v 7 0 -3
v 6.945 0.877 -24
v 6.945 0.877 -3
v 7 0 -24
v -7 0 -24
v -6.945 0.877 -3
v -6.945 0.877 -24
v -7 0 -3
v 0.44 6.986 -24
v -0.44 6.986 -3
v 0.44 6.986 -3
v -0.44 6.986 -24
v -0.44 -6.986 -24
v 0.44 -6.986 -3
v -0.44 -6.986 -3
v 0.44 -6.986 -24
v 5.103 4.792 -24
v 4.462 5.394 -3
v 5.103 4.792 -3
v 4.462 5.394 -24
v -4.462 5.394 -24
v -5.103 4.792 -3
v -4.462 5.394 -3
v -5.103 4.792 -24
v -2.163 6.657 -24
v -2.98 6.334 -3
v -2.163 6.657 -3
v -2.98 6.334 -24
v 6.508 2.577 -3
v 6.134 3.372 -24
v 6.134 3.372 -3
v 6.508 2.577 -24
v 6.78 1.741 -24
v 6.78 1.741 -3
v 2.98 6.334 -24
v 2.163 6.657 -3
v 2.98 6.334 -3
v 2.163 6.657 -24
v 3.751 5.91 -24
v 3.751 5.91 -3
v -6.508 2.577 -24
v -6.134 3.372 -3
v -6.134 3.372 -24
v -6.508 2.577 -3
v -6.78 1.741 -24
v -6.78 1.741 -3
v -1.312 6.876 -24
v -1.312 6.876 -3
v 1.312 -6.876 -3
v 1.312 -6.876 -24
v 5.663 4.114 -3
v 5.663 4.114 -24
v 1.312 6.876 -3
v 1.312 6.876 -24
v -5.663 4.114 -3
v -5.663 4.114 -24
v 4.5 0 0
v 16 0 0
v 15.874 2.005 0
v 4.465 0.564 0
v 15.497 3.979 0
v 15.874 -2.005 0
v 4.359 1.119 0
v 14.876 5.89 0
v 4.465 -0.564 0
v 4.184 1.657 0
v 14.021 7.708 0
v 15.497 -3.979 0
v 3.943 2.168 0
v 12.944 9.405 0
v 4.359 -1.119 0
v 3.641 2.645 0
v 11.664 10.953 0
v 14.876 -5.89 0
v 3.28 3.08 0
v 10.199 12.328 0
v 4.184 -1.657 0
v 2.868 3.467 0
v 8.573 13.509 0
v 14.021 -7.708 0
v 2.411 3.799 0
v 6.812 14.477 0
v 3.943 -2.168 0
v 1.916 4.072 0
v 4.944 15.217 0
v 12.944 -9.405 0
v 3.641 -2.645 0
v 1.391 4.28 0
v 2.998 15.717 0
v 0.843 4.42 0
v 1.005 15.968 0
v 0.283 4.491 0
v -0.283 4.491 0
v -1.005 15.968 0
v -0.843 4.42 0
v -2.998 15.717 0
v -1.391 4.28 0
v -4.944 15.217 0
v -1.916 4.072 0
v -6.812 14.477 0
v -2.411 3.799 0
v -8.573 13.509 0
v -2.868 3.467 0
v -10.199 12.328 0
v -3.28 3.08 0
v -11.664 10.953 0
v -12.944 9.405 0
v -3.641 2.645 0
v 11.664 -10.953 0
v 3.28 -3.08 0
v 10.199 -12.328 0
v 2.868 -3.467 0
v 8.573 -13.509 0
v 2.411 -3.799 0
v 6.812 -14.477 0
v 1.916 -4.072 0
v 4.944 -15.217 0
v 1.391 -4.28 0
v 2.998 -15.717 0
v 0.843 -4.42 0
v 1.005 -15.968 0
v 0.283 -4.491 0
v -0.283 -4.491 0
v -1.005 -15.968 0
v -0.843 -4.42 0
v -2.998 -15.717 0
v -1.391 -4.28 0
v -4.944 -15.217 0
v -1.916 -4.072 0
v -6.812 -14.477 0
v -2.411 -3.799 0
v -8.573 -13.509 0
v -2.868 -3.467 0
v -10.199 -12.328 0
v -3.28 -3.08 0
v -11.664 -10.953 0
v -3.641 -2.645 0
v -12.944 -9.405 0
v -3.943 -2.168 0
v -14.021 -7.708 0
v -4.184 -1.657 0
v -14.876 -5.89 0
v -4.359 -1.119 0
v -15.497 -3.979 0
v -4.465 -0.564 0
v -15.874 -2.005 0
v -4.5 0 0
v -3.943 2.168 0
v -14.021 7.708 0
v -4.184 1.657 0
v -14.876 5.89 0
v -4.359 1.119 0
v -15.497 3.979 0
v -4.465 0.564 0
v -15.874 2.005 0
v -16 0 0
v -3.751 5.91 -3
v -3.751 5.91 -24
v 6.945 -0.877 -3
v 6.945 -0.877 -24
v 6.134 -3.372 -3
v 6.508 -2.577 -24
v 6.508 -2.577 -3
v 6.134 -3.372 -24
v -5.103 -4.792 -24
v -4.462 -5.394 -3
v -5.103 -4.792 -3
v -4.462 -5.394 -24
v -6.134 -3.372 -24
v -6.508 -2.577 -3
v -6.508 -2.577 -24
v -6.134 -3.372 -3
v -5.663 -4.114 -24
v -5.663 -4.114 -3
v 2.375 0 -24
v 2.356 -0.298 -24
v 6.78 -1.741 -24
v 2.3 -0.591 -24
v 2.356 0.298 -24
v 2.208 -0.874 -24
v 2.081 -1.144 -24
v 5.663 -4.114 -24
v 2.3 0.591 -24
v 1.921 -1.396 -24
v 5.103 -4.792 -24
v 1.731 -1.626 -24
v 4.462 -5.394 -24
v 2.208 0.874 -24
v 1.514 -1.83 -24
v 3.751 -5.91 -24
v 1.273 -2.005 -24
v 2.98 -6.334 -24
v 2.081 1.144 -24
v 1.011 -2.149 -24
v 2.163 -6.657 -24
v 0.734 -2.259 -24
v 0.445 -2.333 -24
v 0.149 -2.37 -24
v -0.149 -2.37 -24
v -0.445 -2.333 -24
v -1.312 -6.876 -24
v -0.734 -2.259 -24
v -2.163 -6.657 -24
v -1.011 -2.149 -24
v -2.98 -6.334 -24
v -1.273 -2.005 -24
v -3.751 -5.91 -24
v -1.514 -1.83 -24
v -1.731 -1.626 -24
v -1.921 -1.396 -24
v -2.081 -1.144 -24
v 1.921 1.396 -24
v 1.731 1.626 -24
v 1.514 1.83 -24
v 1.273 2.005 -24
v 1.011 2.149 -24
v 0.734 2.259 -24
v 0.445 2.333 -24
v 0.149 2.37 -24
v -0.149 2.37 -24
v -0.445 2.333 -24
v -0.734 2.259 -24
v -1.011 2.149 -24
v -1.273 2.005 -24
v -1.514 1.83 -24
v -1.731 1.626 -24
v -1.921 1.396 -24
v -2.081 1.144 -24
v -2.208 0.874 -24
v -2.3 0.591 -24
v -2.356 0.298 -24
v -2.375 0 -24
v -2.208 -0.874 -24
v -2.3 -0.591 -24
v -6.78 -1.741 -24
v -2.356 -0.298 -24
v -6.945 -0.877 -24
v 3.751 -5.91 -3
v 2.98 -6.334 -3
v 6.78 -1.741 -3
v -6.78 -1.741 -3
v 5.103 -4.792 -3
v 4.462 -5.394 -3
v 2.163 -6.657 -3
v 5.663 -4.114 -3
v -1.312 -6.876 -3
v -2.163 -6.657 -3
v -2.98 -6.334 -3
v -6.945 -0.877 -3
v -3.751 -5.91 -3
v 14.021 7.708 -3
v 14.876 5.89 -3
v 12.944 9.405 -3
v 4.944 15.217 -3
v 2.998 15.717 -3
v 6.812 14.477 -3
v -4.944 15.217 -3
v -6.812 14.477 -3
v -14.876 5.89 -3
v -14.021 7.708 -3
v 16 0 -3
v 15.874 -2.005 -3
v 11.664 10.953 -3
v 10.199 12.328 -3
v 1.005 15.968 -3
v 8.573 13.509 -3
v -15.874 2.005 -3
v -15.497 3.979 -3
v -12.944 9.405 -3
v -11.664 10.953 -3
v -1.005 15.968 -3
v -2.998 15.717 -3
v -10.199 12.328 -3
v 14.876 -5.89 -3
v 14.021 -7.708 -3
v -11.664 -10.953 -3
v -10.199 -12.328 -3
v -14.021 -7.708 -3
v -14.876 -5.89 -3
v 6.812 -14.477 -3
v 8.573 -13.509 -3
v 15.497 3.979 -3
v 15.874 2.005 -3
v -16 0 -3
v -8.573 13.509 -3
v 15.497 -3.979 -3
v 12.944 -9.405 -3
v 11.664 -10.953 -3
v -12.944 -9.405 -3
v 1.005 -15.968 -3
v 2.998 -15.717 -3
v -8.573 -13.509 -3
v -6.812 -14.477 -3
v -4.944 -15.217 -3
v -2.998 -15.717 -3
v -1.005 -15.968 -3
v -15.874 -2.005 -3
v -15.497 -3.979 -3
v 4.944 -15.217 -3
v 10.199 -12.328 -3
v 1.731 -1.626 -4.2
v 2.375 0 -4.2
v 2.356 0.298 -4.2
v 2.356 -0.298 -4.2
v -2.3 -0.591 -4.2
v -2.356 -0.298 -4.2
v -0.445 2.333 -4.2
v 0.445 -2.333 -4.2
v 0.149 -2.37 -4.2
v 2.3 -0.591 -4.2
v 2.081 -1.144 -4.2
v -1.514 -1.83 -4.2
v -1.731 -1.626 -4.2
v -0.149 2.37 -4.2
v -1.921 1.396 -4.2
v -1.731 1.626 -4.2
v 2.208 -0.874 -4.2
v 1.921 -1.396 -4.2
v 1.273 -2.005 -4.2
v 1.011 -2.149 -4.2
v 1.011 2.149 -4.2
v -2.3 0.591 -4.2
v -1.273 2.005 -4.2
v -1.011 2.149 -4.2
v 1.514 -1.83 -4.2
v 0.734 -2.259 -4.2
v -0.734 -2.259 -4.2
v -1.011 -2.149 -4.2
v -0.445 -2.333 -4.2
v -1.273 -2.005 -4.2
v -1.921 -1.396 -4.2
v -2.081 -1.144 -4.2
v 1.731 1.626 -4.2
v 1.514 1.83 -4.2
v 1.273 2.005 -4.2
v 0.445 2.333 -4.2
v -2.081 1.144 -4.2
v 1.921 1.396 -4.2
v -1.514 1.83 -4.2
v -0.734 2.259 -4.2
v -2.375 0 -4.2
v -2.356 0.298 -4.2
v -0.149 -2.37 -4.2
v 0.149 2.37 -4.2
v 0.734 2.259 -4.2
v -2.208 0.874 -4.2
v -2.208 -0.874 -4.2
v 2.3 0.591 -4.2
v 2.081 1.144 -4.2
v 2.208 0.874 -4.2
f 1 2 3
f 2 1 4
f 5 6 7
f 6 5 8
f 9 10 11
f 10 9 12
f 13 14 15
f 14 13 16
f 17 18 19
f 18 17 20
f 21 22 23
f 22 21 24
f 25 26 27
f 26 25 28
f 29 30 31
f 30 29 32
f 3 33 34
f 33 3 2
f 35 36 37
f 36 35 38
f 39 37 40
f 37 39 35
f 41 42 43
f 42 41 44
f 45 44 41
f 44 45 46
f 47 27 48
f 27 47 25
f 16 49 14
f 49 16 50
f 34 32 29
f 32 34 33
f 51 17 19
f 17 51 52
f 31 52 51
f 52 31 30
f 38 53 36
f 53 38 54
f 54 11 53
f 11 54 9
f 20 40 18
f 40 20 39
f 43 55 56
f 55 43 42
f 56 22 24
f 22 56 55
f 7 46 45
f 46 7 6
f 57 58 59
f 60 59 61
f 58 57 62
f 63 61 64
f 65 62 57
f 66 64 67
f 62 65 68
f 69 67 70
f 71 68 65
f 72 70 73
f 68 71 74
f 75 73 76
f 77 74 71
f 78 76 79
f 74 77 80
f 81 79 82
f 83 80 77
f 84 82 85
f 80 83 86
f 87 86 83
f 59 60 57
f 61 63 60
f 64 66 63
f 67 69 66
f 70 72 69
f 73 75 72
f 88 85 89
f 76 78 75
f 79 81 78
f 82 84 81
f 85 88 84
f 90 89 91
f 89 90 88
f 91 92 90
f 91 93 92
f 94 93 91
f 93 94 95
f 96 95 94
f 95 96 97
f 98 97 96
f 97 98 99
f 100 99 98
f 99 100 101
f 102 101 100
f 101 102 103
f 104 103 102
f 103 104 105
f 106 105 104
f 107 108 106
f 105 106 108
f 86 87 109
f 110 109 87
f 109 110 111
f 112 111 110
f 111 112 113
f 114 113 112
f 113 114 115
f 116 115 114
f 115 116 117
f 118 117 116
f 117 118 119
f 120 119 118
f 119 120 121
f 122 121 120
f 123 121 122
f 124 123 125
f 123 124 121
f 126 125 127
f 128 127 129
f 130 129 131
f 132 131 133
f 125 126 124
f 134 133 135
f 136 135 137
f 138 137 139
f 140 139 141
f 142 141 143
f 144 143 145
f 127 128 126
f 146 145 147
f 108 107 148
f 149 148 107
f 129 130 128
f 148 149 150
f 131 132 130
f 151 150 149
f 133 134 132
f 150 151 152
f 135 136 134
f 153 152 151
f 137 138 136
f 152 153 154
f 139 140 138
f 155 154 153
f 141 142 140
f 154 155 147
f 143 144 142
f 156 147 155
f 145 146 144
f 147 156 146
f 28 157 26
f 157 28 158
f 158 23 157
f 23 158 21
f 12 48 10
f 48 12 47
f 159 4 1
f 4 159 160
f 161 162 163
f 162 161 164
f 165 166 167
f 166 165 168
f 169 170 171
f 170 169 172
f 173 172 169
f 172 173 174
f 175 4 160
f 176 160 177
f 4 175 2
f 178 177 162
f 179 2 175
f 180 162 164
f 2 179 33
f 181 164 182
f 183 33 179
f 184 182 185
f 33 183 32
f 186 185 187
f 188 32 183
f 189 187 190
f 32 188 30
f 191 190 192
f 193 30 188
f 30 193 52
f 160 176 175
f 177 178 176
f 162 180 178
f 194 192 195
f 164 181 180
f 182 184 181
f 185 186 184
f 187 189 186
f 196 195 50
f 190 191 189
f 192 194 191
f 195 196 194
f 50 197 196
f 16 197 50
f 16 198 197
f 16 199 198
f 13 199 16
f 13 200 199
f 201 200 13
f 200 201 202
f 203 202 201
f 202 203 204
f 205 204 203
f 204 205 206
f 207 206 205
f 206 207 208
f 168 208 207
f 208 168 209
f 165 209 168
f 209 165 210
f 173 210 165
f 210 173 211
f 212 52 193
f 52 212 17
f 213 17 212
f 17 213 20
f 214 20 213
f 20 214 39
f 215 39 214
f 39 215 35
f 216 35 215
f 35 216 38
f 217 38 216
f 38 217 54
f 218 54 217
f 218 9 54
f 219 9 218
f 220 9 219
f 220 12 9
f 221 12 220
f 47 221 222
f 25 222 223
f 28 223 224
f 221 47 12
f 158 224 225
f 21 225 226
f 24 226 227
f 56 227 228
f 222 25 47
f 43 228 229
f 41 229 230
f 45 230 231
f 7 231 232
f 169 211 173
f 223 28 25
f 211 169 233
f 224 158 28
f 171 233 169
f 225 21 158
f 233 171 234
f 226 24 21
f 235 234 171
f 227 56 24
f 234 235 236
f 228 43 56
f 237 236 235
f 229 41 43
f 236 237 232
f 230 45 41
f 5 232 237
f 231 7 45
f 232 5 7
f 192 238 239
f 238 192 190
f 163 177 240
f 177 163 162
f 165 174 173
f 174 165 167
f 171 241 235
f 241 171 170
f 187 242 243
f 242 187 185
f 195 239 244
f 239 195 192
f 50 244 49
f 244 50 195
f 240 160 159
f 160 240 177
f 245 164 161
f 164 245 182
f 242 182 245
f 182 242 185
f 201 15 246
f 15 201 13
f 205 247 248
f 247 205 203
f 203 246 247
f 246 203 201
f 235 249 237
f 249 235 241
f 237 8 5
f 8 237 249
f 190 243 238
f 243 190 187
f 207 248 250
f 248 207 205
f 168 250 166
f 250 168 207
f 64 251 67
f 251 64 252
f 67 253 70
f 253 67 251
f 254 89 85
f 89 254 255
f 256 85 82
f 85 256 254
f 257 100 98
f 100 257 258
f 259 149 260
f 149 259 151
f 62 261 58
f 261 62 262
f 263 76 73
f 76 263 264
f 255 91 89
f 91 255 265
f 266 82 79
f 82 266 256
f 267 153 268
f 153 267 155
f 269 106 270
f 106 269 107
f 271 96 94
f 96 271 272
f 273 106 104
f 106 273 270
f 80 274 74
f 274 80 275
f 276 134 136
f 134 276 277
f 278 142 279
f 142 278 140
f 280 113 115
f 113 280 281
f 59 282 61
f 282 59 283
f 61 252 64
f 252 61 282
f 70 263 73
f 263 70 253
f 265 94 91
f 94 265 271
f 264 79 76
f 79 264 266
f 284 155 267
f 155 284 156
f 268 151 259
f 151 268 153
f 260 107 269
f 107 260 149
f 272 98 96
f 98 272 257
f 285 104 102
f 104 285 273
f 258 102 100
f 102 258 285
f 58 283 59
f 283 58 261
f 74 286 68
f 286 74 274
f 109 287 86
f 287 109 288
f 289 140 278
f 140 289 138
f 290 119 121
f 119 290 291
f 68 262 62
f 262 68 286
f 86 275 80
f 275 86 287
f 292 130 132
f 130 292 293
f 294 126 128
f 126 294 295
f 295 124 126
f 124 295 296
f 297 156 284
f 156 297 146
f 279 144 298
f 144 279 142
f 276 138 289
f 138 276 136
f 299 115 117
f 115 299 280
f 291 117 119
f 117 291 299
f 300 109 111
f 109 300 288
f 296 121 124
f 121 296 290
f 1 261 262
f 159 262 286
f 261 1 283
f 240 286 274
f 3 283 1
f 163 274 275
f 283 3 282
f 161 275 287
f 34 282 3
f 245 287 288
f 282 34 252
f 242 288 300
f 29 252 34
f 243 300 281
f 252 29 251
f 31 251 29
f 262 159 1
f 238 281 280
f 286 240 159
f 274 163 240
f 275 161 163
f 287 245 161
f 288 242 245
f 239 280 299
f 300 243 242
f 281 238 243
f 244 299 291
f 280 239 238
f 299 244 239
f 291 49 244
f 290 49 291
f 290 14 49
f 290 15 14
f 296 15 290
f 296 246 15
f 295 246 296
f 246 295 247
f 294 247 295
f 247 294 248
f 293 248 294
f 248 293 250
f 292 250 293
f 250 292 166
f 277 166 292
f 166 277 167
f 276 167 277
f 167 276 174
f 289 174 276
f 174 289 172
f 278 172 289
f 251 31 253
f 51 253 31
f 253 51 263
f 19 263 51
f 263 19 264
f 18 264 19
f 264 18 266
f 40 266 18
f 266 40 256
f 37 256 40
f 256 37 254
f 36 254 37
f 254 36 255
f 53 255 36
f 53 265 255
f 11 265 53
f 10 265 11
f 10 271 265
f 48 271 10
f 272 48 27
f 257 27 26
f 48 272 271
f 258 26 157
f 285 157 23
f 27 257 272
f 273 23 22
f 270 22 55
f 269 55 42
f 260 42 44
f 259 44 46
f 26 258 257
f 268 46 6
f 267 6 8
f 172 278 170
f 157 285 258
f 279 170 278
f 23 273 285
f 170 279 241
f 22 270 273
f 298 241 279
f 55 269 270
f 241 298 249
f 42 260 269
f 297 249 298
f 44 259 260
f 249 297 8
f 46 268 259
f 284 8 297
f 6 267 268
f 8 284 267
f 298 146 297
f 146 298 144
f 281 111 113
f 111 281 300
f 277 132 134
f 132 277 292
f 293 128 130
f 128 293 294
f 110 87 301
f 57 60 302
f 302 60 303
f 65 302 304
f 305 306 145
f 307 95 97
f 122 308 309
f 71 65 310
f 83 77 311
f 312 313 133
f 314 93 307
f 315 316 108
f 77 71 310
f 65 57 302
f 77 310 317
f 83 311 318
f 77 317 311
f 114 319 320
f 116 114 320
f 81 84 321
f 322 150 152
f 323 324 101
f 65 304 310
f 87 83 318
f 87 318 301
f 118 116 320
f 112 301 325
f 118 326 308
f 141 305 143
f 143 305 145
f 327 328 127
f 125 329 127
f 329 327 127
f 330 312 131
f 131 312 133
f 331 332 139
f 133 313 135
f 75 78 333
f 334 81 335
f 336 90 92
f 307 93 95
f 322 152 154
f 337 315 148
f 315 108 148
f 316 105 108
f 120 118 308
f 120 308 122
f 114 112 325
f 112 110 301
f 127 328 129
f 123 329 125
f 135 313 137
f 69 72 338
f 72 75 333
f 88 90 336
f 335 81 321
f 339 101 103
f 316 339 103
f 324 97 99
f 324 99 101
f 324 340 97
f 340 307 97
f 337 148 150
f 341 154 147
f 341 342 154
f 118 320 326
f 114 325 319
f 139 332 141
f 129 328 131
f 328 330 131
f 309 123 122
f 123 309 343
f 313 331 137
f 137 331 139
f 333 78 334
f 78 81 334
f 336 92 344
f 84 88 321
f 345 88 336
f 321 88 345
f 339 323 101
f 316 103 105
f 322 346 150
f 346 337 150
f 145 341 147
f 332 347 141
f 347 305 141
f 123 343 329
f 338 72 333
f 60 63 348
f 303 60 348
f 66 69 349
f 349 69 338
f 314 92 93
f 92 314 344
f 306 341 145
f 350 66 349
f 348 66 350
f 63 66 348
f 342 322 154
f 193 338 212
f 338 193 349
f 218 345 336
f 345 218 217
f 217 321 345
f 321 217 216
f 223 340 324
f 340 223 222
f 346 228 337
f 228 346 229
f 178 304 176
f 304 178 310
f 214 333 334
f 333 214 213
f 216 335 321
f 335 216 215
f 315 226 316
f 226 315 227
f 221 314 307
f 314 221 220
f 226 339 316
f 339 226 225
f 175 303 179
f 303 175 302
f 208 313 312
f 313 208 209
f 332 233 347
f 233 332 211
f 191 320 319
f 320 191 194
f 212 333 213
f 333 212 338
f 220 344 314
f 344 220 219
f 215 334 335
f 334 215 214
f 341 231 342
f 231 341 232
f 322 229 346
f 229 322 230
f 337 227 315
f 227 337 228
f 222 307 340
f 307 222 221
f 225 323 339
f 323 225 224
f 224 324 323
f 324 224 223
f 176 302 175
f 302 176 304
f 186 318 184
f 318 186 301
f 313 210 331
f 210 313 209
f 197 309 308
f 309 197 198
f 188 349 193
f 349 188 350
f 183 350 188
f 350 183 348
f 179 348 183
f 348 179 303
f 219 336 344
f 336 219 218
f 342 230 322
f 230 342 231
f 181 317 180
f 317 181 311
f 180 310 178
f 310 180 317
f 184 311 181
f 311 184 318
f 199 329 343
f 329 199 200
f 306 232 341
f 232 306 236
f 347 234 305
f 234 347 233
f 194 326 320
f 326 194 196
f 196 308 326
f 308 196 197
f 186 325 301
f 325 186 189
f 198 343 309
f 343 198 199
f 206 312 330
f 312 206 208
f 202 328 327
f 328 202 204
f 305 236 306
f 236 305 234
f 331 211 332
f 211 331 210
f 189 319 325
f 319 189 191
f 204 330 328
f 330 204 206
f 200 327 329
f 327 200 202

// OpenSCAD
$fn = 50;


difference() {
	union() {
		translate(v = [0, 0, -24.0000000000]) {
			cylinder(h = 24, r = 7.0000000000);
		}
		translate(v = [0, 0, -3.0000000000]) {
			cylinder(h = 3, r = 16.0000000000);
		}
	}
	union() {
		translate(v = [0, 0, 0]) {
			rotate(a = [0, 0, 0]) {
				difference() {
					union() {
						#translate(v = [0, 0, -24.0000000000]) {
							cylinder(h = 24, r = 2.2500000000);
						}
						#translate(v = [0, 0, -4.2000000000]) {
							cylinder(h = 4.2000000000, r1 = 2.3750000000, r2 = 4.5000000000);
						}
						#translate(v = [0, 0, -24.0000000000]) {
							cylinder(h = 24, r = 2.3750000000);
						}
						#translate(v = [0, 0, -24.0000000000]) {
							cylinder(h = 24, r = 2.2500000000);
						}
					}
					union();
				}
			}
		}
	}
}
